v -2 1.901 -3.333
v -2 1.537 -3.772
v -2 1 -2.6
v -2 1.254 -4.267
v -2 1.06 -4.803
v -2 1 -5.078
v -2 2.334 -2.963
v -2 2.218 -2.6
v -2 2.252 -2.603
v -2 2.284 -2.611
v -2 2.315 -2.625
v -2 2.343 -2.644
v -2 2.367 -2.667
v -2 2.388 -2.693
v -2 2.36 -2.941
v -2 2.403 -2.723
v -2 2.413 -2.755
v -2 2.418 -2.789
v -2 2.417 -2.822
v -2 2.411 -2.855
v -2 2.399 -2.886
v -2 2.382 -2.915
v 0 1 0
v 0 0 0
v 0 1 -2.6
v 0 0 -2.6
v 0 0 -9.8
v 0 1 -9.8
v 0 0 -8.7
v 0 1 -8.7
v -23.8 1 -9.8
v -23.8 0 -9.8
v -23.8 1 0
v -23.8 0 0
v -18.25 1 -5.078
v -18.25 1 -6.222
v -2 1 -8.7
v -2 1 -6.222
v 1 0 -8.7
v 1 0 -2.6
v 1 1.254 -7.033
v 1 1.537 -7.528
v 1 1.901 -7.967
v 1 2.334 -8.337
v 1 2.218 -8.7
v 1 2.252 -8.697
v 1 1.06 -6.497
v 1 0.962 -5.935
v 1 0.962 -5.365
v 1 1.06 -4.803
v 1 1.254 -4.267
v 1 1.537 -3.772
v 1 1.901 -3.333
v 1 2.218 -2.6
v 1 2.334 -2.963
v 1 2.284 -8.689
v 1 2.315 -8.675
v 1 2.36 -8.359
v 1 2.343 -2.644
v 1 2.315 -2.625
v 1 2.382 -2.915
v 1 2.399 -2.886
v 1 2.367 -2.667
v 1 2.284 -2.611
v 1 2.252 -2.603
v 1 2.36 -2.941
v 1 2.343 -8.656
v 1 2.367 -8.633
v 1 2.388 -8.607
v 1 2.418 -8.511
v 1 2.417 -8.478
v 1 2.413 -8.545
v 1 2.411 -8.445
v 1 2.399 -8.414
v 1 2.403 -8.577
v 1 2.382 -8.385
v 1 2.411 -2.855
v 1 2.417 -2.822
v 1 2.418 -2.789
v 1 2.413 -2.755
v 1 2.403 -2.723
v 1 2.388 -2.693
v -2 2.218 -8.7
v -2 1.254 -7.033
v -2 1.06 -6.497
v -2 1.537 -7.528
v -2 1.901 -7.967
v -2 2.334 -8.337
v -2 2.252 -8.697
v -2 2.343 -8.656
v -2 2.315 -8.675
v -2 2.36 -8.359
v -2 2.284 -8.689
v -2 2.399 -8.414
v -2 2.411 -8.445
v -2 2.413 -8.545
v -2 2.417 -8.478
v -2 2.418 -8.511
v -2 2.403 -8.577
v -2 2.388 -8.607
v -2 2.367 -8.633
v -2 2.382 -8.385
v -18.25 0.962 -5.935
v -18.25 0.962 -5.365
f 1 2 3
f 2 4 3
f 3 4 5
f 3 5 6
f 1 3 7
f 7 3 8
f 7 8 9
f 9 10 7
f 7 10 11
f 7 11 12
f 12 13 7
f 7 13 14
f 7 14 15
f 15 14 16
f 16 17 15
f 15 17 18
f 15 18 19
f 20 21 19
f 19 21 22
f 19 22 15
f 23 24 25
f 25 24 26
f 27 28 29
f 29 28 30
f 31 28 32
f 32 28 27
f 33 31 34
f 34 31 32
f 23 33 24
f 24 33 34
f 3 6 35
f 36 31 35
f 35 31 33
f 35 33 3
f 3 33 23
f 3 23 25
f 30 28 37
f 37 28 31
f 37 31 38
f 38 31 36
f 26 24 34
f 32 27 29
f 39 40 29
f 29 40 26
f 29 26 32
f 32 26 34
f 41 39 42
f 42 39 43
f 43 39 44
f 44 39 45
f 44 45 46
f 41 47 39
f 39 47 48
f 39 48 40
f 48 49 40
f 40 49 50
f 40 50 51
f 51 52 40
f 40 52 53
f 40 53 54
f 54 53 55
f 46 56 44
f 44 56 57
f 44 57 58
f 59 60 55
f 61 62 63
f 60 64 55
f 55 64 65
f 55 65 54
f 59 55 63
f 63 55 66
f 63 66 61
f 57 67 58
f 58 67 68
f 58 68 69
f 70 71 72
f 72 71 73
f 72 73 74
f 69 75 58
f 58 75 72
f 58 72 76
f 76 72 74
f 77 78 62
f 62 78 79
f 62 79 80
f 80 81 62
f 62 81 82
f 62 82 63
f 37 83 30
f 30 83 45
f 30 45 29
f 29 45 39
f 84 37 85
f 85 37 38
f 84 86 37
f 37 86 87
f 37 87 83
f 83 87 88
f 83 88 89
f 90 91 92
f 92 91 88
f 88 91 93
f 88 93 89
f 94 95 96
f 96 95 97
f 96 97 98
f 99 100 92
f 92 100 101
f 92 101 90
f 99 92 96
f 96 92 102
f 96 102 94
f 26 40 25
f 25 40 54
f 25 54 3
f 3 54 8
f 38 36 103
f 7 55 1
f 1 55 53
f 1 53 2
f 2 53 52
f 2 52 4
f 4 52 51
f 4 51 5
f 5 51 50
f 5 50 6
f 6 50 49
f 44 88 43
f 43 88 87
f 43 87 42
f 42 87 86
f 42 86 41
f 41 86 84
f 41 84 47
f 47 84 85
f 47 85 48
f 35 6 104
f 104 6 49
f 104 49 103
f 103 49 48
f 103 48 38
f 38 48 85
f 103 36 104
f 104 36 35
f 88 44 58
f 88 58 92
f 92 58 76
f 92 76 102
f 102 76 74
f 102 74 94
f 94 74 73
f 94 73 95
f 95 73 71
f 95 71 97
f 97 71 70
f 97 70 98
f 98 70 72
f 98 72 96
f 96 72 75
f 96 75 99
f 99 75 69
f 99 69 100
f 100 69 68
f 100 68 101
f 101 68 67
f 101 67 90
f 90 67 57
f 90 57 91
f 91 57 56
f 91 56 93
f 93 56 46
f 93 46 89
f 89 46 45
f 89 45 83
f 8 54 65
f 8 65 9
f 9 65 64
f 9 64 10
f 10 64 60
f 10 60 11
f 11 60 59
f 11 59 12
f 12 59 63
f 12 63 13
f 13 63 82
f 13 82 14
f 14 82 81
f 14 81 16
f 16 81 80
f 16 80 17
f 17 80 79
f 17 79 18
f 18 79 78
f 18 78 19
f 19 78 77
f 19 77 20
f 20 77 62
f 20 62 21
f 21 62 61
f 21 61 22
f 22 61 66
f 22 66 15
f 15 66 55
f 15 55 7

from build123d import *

# Parameters (mm, degrees)
SKETCH1_W           = 23.8
SKETCH1_H           = 9.8
BOSS_EXTRUDE1_DEPTH = 1
SKETCH2_W           = 3
SKETCH2_H           = 6.1
BOSS_EXTRUDE2_DEPTH = 3.25
SKETCH4_W           = 1
SKETCH4_H           = 6.1
BOSS_EXTRUDE3_DEPTH = 1
SKETCH3_R           = 3.3
CUT_EXTRUDE1_DEPTH  = 19.25
FILLET1_R           = 0.2


with BuildPart() as part:
    # Sketch1 → Boss-Extrude1 (new body)
    with BuildSketch(Plane(origin=(0, 0, 0), x_dir=(1, 0, 0), z_dir=(0, 1, 0))):
        with Locations((-11.9, 4.9)):
            Rectangle(SKETCH1_W, SKETCH1_H)
    extrude(amount=BOSS_EXTRUDE1_DEPTH)

    # Sketch2 → Boss-Extrude2 (add)
    with BuildSketch(Plane(origin=(0, 1, 0), x_dir=(1, 0, 0), z_dir=(0, 1, 0))):
        with Locations((-0.5, 5.65)):
            Rectangle(SKETCH2_W, SKETCH2_H)
    extrude(amount=BOSS_EXTRUDE2_DEPTH)

    # Sketch4 → Boss-Extrude3 (add)
    with BuildSketch(Plane.XZ.offset(-1)):
        with Locations((0.5, -5.65)):
            Rectangle(SKETCH4_W, SKETCH4_H)
    extrude(amount=BOSS_EXTRUDE3_DEPTH)

    # Sketch3 → Cut-Extrude1 (cut)
    with BuildSketch(Plane(origin=(1, 0, 0), x_dir=(0, 0, -1), z_dir=(1, 0, 0))):
        with Locations((5.65, 4.25)):
            Circle(SKETCH3_R)
    extrude(amount=-CUT_EXTRUDE1_DEPTH, mode=Mode.SUBTRACT)

    # Fillet1
    fillet1_edges = [part.edges().sort_by_distance(p)[0] for p in [
        (-0.5, 2.990039683, -2.6),
        (-0.5, 2.990039683, -8.7),
    ]]
    fillet(fillet1_edges, radius=FILLET1_R)


solid = part.part
